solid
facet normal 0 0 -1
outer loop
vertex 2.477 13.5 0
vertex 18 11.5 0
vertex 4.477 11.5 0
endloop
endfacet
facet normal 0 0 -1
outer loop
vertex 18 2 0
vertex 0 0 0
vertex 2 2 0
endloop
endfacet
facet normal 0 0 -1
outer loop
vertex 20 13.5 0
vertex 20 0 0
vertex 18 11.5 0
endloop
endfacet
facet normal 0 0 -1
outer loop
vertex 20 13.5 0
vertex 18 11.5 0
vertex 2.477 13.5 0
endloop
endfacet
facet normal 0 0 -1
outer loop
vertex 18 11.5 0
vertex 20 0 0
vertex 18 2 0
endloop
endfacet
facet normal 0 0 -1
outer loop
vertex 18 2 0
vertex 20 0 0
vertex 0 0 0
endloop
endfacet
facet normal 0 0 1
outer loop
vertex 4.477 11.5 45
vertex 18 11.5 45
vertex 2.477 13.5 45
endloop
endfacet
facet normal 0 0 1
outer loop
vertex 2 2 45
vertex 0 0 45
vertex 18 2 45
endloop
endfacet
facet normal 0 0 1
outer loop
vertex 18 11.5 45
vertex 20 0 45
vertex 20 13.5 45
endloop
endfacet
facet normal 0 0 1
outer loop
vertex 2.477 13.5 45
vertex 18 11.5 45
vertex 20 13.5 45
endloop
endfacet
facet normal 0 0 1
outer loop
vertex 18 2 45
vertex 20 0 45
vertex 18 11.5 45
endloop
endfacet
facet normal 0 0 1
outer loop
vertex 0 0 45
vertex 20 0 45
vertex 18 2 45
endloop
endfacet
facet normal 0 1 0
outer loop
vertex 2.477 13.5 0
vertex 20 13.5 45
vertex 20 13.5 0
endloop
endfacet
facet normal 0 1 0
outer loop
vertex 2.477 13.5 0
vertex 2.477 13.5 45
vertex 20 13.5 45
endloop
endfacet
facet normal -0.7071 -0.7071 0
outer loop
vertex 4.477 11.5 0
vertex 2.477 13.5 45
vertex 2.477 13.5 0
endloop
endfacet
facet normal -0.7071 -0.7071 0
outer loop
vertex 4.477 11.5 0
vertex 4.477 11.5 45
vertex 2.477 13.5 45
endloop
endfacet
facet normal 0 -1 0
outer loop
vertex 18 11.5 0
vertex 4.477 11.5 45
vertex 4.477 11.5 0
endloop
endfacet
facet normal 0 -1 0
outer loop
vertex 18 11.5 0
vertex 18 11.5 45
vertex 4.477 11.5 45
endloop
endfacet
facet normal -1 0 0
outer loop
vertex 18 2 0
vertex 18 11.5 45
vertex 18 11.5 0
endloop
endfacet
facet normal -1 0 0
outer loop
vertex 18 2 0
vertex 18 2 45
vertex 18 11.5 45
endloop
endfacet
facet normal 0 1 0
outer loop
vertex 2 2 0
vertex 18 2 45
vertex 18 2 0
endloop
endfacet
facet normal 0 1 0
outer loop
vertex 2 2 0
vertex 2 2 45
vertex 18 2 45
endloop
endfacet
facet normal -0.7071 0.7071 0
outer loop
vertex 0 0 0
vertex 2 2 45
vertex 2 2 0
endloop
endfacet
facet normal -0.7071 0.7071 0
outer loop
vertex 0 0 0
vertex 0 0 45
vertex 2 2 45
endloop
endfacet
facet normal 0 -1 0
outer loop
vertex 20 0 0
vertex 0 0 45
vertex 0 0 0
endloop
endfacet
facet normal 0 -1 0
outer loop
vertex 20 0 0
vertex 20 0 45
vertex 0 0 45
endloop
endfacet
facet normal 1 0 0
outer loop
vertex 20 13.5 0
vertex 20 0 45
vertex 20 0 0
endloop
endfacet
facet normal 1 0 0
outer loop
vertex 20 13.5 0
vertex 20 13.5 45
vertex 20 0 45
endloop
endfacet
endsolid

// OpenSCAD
bredde=45;
dybde=9.5;
hoyde=18;
veggtykkelse=2;
slakk=1;

linear_extrude(bredde) {
    difference() {
        square([hoyde+veggtykkelse,veggtykkelse*2+dybde]);
        translate([0, veggtykkelse]) {
            square([hoyde,dybde]);
        }
        rotate([0, 0, 45]) {
            square([dybde*sqrt(sqrt(2)),dybde*sqrt(sqrt(2))]);
        }
    }
}
